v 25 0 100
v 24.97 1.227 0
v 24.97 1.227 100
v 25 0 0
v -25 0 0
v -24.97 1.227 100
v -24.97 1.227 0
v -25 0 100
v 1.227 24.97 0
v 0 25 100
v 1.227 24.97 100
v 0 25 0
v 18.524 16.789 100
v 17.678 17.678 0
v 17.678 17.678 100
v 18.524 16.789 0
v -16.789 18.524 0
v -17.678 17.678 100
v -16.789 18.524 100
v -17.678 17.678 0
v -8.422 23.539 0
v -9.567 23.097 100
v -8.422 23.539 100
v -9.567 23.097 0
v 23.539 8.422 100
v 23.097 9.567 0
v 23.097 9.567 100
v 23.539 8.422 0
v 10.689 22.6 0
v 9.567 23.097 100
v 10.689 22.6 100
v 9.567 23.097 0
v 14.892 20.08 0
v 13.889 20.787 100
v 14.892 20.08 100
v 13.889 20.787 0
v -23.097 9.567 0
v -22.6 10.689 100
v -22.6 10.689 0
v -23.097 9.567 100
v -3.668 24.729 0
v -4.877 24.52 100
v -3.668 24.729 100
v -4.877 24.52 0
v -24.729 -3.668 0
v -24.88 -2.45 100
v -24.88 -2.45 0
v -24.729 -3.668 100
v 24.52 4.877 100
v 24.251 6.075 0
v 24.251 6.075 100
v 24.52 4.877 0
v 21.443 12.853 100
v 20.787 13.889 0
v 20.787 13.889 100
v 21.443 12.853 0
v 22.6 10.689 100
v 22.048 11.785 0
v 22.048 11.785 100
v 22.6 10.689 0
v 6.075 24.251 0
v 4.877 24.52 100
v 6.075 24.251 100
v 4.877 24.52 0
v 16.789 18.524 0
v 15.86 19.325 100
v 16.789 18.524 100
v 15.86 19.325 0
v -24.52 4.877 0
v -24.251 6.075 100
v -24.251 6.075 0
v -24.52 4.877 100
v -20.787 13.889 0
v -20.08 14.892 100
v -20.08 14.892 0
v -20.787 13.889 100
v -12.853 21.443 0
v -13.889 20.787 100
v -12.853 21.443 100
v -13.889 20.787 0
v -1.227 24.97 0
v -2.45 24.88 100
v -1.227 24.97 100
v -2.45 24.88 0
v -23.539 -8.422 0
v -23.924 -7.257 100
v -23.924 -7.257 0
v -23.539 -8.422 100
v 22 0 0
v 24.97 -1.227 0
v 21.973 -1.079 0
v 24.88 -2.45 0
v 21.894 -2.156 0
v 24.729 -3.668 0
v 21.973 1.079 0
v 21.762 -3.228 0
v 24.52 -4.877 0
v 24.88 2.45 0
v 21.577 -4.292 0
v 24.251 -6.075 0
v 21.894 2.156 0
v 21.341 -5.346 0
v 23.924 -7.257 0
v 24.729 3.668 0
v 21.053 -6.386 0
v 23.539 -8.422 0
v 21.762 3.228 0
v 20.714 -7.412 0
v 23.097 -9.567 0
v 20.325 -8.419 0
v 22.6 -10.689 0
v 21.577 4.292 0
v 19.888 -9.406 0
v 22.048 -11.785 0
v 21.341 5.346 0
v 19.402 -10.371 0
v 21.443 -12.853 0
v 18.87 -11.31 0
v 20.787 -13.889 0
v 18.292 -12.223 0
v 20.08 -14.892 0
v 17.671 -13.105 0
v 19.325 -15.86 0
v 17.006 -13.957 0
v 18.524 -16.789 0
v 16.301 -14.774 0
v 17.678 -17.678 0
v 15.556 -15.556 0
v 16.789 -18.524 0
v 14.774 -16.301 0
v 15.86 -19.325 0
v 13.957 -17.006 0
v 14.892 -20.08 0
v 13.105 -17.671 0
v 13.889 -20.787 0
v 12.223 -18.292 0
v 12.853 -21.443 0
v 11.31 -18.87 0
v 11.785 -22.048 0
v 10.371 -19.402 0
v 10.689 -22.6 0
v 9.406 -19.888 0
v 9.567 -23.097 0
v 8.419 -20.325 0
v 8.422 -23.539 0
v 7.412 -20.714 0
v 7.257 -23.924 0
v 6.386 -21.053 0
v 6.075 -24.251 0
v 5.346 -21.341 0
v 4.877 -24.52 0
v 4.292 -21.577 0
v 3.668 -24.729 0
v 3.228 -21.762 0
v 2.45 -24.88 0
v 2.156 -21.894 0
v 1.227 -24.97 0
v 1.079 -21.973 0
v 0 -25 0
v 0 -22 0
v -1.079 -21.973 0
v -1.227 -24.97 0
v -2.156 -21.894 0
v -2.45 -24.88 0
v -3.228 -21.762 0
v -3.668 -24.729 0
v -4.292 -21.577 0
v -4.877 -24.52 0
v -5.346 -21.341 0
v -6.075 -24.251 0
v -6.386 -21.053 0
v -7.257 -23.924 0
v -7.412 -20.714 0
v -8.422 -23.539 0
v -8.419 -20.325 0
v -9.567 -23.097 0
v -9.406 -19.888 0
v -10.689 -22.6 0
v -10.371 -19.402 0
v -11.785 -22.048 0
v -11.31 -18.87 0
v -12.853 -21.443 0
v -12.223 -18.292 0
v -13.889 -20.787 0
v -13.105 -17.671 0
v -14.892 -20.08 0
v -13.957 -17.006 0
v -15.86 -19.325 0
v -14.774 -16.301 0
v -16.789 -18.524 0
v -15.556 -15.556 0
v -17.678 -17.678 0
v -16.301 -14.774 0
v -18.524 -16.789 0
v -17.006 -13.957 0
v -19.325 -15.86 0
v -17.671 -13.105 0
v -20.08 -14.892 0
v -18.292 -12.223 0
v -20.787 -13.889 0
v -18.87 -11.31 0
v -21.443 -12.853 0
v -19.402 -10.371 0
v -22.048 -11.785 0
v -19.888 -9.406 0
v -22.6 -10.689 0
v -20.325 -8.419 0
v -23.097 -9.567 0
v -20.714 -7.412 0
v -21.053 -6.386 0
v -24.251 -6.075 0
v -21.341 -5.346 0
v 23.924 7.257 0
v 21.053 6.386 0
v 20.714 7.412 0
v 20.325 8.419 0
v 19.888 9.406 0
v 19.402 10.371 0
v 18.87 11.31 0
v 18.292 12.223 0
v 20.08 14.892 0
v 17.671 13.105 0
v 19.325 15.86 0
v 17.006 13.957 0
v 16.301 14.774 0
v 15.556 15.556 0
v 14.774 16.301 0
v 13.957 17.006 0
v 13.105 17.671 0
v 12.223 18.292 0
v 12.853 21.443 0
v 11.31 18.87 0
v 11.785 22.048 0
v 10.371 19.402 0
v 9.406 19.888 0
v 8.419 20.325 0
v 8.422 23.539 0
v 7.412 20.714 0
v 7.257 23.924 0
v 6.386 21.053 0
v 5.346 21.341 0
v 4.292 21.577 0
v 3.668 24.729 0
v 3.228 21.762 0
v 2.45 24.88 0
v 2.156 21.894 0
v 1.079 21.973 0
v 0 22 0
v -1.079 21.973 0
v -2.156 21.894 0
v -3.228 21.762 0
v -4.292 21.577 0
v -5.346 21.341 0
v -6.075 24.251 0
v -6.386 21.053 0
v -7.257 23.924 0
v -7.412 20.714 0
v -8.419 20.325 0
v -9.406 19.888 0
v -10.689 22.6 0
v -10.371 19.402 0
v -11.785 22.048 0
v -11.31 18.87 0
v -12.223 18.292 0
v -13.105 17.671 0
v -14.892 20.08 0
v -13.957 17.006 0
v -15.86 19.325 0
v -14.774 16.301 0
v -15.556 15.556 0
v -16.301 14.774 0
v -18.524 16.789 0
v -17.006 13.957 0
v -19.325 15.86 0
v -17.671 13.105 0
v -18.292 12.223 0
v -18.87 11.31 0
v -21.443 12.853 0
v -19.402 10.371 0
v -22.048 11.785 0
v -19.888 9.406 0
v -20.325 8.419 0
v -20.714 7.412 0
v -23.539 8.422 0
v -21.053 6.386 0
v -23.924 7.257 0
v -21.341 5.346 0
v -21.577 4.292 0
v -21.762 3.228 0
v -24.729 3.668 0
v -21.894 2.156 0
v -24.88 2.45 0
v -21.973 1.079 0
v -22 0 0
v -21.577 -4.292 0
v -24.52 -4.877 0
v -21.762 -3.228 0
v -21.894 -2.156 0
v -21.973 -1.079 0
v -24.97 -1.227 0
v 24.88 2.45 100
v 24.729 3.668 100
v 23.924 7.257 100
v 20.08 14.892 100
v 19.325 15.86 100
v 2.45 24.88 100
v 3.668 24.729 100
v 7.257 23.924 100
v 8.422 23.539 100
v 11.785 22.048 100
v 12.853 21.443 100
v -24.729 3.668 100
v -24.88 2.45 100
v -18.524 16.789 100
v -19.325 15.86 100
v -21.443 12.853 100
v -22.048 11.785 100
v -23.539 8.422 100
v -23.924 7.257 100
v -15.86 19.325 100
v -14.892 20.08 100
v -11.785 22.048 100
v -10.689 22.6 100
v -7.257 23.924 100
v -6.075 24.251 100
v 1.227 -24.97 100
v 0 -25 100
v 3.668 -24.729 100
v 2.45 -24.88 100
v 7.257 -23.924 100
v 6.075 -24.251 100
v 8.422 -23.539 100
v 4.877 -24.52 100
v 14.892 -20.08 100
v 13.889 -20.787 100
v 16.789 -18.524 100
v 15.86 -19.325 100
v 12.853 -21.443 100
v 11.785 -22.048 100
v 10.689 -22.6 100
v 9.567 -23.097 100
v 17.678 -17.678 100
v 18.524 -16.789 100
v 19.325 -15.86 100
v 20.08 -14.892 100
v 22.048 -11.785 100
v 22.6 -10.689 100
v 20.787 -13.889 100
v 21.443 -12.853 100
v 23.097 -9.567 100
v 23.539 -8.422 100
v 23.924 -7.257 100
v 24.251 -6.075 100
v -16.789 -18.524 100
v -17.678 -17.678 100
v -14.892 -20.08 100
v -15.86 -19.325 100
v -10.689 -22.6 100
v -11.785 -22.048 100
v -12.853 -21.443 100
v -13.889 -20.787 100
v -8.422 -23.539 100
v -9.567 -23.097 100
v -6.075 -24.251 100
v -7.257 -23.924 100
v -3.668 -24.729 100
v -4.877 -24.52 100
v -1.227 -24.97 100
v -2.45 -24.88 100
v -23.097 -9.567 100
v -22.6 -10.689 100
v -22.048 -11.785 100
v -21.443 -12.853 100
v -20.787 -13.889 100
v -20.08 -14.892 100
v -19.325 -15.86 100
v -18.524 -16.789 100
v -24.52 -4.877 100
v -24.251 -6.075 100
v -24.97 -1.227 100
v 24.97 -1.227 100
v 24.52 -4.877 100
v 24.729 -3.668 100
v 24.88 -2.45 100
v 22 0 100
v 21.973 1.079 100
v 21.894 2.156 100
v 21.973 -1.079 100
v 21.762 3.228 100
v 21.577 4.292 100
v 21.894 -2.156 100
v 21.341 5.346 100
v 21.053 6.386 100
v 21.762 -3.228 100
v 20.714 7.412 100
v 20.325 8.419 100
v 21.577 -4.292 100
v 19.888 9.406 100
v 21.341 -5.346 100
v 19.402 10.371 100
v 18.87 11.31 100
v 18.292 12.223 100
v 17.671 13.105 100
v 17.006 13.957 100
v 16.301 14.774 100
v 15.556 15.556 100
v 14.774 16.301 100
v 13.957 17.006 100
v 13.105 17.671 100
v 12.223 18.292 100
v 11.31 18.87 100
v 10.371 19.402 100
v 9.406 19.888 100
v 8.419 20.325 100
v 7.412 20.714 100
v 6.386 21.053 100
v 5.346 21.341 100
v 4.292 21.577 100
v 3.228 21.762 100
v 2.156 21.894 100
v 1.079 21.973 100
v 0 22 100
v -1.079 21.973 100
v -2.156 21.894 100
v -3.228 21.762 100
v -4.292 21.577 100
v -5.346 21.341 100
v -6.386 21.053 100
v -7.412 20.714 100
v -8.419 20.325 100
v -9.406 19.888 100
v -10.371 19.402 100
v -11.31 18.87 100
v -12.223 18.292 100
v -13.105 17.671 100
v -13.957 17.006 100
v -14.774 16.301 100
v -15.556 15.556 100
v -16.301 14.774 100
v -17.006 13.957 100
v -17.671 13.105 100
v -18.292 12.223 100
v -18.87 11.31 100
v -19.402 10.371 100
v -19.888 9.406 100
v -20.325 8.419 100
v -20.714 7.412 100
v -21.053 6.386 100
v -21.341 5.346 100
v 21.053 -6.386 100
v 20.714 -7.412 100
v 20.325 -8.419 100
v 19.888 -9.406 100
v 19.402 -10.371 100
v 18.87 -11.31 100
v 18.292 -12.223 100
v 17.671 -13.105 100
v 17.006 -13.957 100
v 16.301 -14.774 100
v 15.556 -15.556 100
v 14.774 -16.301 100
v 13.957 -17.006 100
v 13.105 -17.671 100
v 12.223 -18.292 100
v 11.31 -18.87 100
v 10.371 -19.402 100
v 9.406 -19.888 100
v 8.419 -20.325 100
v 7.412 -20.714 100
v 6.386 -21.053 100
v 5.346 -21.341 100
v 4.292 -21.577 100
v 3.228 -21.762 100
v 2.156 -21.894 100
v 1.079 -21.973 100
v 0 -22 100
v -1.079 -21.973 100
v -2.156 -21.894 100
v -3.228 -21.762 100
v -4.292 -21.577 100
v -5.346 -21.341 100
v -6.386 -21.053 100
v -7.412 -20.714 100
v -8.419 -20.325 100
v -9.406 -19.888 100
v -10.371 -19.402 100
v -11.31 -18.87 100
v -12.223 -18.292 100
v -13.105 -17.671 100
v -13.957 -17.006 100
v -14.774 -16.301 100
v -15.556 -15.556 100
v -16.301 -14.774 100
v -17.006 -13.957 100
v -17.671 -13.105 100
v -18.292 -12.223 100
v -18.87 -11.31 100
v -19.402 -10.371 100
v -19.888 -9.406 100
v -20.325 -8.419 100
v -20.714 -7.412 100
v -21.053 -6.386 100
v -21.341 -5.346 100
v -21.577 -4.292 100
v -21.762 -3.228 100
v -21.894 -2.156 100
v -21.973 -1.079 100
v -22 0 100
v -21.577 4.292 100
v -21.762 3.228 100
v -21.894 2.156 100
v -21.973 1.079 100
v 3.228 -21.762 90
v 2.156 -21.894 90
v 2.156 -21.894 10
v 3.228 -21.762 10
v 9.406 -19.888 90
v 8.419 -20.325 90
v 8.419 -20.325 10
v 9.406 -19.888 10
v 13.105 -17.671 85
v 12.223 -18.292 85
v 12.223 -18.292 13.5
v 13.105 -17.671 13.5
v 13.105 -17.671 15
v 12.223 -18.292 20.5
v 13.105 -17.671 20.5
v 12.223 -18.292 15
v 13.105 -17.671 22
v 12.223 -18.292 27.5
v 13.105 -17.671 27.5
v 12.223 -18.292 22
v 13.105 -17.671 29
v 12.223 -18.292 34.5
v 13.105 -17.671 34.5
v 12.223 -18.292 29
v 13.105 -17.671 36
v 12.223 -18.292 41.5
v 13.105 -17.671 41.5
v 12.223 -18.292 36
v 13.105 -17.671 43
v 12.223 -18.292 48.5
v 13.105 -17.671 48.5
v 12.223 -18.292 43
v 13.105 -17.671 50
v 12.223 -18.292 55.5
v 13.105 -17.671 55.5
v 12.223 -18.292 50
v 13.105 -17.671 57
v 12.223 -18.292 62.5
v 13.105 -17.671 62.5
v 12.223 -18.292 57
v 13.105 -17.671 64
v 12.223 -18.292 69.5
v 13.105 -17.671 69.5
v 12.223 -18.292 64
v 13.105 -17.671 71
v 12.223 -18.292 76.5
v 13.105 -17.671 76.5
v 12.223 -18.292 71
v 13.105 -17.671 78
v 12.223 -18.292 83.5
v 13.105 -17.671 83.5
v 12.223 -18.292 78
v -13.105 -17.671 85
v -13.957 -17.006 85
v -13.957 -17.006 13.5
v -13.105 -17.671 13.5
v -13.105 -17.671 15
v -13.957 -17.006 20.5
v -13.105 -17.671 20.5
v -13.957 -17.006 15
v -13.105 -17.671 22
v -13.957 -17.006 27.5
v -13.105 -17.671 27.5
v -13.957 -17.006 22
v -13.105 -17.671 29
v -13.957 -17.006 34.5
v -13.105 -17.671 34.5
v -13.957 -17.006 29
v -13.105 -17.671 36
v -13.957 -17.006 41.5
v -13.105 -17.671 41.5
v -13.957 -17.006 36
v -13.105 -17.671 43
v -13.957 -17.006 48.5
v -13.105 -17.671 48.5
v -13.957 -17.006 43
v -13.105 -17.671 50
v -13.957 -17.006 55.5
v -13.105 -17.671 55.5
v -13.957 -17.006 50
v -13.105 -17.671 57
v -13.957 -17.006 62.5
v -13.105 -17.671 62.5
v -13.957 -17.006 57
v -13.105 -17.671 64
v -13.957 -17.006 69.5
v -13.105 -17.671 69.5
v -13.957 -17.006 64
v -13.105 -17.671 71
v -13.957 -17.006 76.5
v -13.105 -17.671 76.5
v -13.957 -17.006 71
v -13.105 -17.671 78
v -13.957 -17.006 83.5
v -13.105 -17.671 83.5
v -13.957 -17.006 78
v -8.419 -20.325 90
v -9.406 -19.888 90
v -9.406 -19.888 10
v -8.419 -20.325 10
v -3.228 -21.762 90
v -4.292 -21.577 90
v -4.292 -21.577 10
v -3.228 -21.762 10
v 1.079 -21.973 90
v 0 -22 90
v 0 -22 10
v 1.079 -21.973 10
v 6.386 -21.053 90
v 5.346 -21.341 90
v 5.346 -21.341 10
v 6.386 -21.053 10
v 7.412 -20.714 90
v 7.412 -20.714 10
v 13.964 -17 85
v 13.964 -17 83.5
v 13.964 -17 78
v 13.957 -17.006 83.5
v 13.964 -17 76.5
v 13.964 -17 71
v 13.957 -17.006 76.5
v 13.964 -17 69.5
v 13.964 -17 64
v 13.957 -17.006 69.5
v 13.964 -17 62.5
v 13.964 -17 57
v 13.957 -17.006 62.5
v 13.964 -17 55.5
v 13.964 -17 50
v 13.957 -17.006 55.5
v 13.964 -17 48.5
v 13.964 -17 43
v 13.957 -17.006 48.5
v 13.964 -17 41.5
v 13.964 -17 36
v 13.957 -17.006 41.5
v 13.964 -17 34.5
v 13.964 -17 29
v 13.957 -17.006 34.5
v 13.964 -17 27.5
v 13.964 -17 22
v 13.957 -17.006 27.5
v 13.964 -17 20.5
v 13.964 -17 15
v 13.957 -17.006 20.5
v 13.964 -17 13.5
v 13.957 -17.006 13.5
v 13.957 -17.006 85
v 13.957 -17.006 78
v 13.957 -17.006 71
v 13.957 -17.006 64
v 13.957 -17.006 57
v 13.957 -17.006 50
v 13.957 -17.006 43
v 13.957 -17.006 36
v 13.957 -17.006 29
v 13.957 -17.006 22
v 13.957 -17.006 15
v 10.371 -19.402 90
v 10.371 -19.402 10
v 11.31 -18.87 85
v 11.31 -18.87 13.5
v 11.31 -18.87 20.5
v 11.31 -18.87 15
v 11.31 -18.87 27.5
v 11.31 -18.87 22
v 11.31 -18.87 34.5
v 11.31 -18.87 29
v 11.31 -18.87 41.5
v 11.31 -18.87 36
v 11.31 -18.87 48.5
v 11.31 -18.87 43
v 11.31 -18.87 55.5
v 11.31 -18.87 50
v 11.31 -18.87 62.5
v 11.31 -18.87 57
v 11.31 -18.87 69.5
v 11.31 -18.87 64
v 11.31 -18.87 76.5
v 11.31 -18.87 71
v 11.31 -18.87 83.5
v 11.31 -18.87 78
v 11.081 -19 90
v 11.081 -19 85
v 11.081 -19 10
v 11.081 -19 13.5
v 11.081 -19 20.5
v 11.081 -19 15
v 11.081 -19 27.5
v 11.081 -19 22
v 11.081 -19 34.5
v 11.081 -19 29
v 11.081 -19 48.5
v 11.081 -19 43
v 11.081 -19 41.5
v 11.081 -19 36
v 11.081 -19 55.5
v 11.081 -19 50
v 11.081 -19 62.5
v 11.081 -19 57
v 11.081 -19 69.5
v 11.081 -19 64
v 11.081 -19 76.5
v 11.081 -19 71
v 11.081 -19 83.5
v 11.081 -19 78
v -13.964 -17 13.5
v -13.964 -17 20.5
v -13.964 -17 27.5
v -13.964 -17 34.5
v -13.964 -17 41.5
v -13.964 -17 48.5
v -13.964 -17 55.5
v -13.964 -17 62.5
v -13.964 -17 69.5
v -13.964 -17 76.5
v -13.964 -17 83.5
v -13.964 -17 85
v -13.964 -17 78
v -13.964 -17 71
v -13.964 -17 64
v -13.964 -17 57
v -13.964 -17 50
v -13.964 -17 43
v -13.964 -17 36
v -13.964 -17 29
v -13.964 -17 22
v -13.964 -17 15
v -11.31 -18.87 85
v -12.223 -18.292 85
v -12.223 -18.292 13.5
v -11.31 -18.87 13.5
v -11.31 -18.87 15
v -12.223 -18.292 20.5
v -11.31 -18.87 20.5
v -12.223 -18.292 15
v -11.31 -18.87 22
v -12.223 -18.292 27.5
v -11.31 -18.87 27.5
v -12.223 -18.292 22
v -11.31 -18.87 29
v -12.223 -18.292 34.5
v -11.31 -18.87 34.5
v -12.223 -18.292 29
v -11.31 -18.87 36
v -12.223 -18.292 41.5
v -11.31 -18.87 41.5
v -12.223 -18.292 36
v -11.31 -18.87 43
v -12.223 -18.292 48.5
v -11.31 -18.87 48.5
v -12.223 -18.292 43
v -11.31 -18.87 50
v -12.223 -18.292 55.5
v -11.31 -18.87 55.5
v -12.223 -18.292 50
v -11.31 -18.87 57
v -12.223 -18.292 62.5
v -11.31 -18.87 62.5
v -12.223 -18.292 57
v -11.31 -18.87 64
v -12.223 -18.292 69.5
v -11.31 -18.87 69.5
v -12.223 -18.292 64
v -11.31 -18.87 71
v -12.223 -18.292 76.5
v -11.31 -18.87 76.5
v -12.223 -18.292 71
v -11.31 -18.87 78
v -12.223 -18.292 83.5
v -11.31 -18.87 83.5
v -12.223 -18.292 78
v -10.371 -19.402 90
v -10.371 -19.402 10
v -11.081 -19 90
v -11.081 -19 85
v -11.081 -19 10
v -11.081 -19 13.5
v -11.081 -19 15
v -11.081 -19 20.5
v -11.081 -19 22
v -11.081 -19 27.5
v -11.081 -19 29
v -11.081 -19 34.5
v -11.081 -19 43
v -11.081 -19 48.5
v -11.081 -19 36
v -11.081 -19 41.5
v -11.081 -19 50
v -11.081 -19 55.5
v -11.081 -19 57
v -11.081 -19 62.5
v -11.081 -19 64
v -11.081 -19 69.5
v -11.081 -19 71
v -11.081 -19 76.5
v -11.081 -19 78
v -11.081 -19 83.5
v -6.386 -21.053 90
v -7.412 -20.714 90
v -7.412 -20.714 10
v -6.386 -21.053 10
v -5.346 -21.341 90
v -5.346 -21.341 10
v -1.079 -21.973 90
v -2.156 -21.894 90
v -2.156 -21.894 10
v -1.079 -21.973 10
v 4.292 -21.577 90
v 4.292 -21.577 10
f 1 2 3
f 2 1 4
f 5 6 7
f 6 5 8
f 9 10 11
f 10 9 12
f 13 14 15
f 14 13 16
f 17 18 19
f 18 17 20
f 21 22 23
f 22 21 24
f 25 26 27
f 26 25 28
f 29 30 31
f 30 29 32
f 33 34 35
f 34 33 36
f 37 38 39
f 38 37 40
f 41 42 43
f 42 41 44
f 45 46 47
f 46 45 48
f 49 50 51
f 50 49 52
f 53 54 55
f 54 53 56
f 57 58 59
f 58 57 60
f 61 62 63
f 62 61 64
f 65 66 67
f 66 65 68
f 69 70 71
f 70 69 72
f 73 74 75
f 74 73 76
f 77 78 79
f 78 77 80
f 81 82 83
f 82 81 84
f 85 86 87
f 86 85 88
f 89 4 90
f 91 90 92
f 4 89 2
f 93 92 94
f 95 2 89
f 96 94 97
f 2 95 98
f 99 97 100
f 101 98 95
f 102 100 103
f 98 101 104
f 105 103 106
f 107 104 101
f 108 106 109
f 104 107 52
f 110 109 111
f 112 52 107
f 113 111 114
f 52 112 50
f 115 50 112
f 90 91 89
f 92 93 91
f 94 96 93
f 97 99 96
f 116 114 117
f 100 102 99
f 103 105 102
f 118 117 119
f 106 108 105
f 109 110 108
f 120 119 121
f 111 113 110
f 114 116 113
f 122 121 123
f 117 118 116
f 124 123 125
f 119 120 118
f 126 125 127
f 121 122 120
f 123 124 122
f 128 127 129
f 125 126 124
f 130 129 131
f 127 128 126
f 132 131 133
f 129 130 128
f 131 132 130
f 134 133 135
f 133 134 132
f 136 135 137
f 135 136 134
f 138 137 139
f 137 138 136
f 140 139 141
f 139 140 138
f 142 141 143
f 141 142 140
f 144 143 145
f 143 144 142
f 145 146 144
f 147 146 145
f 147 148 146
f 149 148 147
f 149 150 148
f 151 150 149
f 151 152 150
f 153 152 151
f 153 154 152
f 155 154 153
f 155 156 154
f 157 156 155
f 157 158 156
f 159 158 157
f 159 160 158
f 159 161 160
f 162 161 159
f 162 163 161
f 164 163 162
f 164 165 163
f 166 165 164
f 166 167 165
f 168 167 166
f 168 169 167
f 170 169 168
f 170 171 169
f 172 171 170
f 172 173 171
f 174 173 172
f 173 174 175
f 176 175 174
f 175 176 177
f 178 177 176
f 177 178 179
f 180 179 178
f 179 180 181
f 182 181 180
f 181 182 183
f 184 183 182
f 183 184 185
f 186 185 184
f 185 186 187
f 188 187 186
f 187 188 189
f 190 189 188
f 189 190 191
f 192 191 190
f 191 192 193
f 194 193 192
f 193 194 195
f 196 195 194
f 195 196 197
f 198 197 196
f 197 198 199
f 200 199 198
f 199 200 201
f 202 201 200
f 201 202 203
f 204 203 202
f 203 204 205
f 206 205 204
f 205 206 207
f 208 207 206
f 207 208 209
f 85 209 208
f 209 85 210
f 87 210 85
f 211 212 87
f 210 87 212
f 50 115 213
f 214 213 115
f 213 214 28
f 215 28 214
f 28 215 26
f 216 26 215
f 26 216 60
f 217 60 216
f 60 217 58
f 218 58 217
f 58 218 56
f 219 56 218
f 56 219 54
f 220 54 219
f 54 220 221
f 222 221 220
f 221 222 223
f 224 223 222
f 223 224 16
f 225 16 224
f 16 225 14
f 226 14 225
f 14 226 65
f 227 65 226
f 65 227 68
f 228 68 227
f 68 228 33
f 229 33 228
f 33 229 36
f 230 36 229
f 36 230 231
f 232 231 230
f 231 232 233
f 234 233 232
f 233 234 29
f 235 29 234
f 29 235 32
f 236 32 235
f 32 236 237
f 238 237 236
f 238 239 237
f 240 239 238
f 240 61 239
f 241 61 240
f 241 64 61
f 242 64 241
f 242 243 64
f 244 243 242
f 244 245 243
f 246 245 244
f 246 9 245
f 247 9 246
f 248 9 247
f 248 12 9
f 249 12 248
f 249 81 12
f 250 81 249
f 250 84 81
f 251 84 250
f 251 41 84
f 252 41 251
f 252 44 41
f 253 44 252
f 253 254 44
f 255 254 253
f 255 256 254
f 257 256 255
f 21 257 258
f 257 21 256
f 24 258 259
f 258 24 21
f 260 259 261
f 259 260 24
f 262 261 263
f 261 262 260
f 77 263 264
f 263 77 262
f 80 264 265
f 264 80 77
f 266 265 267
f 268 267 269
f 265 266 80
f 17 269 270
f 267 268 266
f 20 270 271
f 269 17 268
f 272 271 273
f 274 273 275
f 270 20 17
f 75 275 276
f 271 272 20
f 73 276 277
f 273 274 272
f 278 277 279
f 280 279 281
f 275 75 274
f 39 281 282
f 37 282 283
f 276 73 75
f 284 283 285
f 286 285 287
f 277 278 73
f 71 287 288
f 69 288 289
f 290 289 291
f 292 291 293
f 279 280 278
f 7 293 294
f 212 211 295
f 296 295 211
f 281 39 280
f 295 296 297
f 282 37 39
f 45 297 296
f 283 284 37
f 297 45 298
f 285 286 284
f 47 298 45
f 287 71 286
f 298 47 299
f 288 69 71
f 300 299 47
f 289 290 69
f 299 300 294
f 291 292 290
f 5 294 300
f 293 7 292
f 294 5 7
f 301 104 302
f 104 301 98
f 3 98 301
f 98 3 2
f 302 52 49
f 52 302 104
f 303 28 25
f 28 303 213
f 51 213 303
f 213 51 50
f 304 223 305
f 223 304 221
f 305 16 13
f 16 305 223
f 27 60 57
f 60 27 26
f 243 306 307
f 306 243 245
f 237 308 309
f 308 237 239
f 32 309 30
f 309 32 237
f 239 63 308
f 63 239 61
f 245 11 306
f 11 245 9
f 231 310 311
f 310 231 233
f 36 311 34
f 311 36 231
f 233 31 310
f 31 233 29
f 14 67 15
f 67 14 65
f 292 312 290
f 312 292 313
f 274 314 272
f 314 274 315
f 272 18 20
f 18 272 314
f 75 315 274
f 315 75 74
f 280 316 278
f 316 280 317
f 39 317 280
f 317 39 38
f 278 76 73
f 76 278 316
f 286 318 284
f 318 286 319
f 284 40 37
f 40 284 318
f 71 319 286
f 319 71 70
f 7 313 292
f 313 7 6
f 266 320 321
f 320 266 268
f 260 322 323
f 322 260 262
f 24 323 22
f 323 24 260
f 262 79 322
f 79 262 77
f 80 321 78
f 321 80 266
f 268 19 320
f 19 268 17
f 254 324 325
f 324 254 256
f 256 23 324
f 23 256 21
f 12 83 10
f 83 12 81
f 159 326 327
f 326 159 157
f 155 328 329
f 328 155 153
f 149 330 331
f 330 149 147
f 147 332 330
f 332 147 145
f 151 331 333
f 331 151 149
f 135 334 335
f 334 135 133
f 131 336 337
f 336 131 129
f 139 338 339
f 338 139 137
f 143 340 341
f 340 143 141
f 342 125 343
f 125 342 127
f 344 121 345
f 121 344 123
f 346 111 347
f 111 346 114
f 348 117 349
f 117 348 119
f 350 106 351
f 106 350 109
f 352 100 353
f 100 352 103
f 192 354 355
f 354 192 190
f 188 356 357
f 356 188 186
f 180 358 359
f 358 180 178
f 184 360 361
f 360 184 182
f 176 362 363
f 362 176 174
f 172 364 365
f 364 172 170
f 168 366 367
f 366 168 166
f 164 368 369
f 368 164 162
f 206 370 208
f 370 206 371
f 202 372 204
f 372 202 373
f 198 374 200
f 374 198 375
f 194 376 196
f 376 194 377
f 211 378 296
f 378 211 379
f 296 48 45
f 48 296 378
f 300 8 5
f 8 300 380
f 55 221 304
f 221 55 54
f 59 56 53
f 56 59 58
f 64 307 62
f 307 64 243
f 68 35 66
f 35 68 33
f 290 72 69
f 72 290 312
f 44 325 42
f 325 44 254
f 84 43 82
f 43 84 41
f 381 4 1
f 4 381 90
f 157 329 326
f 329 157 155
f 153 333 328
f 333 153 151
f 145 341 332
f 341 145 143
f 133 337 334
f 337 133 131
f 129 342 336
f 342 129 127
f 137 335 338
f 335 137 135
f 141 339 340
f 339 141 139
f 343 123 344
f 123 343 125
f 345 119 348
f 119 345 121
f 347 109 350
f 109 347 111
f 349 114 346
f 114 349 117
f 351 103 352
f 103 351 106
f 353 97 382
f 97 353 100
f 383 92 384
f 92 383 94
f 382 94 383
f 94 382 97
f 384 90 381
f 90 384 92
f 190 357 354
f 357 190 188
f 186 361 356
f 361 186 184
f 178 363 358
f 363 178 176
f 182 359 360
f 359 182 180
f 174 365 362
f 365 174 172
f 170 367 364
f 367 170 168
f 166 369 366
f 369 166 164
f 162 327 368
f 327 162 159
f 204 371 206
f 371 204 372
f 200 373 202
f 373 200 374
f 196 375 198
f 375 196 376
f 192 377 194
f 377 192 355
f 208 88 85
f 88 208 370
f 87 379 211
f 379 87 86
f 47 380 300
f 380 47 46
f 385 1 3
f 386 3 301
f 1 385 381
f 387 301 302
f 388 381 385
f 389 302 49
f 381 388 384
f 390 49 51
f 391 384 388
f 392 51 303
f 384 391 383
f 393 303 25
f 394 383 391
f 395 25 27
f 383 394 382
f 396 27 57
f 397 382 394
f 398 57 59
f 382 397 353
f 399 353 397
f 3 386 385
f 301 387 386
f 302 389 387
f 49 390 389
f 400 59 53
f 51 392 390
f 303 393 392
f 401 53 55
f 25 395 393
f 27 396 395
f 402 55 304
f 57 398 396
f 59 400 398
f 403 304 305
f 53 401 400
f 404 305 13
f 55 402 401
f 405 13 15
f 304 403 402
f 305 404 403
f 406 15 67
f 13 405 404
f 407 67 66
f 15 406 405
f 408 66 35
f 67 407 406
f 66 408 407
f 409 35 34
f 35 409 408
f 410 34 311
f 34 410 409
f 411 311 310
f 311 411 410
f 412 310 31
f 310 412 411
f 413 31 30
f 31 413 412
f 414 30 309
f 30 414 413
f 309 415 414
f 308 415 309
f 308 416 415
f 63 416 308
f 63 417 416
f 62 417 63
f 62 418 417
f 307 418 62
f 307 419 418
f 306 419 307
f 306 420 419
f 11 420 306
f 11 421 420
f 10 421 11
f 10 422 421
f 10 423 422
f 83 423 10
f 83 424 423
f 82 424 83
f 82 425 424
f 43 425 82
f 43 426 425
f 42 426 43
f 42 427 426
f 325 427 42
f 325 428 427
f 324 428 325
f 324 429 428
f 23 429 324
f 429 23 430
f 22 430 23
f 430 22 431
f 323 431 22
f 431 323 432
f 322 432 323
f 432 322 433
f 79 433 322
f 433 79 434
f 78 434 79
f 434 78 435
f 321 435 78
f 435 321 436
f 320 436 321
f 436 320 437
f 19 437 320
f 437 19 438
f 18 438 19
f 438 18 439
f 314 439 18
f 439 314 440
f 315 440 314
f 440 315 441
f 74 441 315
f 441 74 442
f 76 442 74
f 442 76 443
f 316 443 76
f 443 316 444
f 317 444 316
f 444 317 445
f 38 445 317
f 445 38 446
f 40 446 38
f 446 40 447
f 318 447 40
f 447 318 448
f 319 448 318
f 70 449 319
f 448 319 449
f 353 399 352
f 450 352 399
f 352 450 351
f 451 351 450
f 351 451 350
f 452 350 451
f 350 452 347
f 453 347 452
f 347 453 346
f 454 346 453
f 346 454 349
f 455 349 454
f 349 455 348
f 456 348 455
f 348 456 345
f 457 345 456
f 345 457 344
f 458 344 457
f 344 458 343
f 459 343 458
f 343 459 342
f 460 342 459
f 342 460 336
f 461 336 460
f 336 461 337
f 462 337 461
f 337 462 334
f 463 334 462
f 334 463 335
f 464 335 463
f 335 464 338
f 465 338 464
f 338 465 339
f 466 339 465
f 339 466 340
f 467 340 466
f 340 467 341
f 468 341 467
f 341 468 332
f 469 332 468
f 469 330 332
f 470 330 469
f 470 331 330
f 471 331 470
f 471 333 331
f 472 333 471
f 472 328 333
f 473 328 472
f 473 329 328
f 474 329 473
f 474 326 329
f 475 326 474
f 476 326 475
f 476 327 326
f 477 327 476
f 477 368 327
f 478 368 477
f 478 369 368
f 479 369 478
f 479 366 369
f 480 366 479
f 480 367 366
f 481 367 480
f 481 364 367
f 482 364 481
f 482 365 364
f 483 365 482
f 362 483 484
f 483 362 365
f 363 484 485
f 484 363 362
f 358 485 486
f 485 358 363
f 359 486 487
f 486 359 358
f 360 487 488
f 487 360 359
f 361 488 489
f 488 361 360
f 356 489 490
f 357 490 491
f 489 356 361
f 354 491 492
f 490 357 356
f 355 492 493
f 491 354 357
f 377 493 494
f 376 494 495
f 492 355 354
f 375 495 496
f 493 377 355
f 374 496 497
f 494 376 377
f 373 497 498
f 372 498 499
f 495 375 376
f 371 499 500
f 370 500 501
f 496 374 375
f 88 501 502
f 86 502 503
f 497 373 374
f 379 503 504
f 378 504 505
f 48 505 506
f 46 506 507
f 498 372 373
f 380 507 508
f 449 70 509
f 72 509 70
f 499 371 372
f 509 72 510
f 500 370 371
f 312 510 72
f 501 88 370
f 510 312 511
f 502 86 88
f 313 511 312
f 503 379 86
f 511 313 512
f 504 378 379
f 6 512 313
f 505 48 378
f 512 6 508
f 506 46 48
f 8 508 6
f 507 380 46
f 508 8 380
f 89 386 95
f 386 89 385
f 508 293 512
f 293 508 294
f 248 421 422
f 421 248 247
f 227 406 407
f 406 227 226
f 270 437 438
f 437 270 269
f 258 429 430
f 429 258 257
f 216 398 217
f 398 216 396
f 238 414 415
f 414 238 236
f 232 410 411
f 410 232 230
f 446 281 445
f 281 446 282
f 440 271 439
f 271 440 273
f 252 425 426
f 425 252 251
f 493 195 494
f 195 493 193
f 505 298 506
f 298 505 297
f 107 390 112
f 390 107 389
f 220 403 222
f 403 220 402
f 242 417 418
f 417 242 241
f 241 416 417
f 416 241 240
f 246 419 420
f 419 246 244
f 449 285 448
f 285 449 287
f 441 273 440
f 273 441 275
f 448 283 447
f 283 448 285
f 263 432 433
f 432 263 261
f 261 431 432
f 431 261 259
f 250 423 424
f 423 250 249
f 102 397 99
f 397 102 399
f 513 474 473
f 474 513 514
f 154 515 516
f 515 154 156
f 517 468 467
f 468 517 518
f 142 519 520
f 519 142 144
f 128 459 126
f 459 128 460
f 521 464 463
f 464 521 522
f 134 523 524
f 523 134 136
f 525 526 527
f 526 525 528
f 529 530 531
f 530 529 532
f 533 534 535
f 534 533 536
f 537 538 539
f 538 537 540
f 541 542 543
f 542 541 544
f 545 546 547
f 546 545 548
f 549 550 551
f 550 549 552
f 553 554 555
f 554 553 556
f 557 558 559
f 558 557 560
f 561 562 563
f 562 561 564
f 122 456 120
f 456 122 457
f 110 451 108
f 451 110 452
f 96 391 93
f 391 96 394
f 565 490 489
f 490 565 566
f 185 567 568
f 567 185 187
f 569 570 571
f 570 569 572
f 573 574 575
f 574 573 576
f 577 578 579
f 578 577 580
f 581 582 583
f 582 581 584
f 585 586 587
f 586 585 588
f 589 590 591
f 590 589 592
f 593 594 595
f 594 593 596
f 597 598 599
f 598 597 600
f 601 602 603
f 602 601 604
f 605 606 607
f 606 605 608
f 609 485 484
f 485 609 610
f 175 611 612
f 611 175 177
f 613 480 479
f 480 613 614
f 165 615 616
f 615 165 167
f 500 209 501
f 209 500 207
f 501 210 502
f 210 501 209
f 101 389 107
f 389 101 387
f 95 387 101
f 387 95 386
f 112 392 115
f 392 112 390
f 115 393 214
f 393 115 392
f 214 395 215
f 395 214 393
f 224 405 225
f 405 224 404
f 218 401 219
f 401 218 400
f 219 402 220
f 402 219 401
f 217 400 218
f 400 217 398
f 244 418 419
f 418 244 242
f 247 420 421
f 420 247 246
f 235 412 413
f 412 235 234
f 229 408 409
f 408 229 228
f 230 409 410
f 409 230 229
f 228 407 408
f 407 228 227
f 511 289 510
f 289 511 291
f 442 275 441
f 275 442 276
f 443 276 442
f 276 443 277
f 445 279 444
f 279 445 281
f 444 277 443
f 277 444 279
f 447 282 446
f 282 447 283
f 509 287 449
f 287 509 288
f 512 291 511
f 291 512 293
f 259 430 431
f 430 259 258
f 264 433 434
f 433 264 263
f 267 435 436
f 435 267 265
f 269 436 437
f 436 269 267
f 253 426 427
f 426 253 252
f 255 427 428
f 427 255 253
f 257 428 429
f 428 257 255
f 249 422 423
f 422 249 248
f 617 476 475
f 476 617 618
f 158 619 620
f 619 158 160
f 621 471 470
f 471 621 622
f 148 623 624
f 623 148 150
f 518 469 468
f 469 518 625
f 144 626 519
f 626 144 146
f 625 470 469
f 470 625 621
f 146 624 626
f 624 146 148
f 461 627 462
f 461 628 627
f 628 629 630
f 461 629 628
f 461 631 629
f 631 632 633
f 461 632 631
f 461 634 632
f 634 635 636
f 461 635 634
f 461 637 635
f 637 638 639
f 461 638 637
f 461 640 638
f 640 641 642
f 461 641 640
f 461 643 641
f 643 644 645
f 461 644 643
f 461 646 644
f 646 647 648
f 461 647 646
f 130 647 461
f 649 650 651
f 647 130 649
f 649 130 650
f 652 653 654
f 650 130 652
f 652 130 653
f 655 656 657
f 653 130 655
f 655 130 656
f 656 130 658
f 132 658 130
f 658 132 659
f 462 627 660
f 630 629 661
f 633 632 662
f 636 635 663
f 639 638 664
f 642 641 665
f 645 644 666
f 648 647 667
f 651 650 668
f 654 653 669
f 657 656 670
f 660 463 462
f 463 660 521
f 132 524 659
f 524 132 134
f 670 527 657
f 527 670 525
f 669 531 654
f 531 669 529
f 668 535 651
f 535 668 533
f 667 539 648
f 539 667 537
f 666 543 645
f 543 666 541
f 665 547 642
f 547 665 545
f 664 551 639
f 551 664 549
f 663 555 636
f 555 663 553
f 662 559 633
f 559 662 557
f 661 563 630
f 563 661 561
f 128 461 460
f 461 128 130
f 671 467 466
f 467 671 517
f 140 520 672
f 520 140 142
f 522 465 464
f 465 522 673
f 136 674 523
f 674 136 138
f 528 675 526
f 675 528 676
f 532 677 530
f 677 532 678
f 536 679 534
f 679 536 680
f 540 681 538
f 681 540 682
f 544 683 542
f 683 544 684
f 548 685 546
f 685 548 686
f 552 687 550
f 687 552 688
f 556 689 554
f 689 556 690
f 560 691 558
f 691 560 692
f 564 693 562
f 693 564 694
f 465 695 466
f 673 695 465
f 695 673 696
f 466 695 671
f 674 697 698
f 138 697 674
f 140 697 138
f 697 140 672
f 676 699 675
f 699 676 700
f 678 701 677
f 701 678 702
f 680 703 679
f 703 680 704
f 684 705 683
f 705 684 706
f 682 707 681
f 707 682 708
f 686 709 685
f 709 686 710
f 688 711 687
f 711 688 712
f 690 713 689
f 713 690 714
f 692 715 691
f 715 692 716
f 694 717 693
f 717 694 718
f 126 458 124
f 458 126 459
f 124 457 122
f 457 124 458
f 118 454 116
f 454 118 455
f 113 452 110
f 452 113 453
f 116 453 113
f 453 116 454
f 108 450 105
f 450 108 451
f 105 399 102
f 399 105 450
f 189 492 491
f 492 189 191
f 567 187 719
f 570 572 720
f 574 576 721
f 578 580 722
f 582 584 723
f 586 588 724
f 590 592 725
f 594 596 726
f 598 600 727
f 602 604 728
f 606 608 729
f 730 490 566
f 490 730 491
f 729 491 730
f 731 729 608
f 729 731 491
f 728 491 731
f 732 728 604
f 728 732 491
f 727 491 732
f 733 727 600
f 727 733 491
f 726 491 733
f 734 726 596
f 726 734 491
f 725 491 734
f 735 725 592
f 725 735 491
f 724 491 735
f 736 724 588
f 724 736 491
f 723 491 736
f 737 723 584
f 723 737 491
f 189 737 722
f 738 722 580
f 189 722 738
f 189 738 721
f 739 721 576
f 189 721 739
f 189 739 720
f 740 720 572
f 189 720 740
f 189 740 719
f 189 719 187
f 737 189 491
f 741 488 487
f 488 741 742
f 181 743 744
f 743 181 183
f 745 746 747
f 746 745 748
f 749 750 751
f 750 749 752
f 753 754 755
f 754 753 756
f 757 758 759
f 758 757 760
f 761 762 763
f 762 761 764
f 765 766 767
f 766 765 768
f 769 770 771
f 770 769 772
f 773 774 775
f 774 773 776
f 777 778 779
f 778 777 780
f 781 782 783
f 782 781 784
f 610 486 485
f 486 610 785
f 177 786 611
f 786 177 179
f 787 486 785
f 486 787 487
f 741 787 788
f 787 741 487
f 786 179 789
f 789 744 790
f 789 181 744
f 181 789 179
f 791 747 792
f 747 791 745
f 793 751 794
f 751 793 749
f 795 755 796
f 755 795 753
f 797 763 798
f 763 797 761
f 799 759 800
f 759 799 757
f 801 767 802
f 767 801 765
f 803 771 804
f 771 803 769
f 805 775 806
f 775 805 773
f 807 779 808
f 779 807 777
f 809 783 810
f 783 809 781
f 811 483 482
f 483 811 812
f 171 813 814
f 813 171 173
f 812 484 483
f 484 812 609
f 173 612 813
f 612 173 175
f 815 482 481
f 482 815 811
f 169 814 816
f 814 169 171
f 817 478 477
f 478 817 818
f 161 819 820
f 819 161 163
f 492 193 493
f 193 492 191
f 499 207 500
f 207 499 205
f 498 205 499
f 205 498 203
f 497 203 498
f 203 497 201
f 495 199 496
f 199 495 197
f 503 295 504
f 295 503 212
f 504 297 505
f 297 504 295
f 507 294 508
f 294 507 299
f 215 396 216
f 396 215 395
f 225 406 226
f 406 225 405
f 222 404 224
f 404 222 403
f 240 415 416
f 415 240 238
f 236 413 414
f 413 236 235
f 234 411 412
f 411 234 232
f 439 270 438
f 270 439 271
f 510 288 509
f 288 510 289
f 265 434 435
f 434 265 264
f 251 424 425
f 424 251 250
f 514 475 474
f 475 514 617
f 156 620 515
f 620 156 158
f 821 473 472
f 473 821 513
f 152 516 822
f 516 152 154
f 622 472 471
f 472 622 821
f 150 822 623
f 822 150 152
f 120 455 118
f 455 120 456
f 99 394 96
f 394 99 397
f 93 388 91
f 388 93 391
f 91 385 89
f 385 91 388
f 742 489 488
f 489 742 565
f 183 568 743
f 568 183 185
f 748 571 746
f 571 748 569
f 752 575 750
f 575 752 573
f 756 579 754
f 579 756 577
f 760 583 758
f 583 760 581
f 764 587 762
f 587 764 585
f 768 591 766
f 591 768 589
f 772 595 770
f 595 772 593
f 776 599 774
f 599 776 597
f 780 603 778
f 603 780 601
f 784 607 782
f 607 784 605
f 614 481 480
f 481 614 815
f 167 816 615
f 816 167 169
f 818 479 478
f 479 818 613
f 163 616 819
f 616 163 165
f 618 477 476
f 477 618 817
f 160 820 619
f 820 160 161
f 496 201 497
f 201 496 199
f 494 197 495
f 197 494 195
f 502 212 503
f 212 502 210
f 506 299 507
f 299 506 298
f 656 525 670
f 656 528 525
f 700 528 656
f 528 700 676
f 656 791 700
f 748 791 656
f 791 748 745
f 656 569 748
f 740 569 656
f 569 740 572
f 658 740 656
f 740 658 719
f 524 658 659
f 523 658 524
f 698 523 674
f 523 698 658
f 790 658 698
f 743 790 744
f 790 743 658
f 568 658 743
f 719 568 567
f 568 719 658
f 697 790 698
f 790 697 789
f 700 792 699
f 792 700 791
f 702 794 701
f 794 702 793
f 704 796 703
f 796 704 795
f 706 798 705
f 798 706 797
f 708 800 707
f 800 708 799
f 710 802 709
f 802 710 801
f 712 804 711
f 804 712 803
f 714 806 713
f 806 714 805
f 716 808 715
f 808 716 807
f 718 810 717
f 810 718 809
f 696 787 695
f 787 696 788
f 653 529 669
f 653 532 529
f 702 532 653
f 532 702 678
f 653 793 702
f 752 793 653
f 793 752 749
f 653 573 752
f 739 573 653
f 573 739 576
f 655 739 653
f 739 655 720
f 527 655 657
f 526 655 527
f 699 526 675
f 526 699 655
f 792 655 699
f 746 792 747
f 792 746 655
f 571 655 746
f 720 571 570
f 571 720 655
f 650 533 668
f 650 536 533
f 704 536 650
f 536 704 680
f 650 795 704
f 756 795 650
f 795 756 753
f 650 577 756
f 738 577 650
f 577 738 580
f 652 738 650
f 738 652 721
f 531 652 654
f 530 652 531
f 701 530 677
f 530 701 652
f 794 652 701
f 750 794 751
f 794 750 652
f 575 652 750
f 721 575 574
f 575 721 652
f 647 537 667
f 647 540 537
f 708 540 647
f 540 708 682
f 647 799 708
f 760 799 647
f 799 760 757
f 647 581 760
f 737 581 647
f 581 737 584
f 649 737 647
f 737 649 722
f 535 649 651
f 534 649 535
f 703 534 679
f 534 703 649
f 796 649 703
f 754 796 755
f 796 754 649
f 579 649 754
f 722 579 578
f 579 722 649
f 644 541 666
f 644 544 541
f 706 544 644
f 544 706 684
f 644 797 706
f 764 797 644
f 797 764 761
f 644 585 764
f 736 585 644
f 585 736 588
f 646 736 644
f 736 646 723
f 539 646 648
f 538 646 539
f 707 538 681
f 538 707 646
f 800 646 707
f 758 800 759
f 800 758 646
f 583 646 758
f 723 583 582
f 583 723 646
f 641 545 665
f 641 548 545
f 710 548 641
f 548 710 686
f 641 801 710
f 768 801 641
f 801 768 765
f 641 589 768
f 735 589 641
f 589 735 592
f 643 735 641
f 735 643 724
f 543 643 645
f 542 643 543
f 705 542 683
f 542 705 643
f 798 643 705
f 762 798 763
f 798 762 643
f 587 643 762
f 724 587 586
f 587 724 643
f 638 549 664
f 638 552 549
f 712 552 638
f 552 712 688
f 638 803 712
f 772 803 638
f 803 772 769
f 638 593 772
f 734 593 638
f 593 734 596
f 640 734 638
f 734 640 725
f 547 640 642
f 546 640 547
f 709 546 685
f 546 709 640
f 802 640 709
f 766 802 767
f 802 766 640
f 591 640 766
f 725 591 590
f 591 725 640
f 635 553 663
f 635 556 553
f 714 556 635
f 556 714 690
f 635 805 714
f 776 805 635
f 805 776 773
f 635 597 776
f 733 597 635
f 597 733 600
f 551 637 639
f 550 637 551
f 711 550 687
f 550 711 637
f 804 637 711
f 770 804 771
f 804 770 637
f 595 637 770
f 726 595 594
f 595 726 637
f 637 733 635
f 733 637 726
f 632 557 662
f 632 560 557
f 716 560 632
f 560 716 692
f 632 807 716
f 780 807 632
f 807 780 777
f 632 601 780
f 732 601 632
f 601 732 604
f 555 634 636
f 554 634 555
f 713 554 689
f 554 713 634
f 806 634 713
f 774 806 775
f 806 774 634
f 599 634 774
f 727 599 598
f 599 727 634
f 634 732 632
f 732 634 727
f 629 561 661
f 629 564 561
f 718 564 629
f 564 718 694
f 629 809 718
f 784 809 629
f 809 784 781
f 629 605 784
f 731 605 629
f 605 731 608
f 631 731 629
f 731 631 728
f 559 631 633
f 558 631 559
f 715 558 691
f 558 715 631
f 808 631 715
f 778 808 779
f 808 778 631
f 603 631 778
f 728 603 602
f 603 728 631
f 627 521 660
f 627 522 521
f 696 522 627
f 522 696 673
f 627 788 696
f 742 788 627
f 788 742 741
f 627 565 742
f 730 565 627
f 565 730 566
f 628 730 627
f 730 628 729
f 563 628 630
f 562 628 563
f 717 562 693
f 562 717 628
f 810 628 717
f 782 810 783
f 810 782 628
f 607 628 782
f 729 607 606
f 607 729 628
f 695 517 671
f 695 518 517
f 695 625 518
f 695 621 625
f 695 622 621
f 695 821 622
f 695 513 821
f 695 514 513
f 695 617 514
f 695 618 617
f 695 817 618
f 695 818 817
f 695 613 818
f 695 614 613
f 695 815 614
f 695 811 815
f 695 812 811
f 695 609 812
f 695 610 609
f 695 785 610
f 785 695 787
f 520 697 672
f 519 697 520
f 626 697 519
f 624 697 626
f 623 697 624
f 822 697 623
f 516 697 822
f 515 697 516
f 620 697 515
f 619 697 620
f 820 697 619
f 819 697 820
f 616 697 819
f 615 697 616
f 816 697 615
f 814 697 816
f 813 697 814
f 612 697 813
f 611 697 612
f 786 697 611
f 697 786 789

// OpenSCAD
// ============================================================
// Hamster Habitat — Düz Tünel Parçası (kaymazlı taban dahil)
// Outer r=25 | Inner r=22 | Varsayılan 100mm
// Taban: 50mm geniş düzlem + enine tırtıklar (kaymazlık)
// Baskı: yatay bas, taban tablaya gelsin
// ============================================================
$fn = 128;

module tunel_duz(uzunluk = 100) {
  plat_w      = 50;
  plat_t      = 3;
  plat_y      = -22;   // ic silindirin en alt noktasi (r=22)
  plat_offset = 10;    // yuva derinligi kadar uclardan cekilmis

  tirtik_w = 1.5;
  tirtik_h = 2;
  aralik   = 7;

  color("lightgreen", 0.8)
  union() {
    // Ana tünel
    difference() {
      cylinder(r=25, h=uzunluk);
      translate([0, 0, -0.1]) cylinder(r=22, h=uzunluk + 0.2);
    }

    // Taban platformu + tırtıklar — uçlardan plat_offset kadar cekilmis, dis ile kirpilmis
    intersection() {
      union() {
        translate([-plat_w/2, plat_y, plat_offset])
          cube([plat_w, plat_t, uzunluk - 2*plat_offset]);
        for(i = [0 : floor((uzunluk - 2*plat_offset - aralik) / aralik)])
          translate([-plat_w/2, plat_y + plat_t, plat_offset + aralik/2 + i*aralik])
            cube([plat_w, tirtik_h, tirtik_w]);
      }
      cylinder(r=24.9, h=uzunluk);
    }
  }
}

tunel_duz();
